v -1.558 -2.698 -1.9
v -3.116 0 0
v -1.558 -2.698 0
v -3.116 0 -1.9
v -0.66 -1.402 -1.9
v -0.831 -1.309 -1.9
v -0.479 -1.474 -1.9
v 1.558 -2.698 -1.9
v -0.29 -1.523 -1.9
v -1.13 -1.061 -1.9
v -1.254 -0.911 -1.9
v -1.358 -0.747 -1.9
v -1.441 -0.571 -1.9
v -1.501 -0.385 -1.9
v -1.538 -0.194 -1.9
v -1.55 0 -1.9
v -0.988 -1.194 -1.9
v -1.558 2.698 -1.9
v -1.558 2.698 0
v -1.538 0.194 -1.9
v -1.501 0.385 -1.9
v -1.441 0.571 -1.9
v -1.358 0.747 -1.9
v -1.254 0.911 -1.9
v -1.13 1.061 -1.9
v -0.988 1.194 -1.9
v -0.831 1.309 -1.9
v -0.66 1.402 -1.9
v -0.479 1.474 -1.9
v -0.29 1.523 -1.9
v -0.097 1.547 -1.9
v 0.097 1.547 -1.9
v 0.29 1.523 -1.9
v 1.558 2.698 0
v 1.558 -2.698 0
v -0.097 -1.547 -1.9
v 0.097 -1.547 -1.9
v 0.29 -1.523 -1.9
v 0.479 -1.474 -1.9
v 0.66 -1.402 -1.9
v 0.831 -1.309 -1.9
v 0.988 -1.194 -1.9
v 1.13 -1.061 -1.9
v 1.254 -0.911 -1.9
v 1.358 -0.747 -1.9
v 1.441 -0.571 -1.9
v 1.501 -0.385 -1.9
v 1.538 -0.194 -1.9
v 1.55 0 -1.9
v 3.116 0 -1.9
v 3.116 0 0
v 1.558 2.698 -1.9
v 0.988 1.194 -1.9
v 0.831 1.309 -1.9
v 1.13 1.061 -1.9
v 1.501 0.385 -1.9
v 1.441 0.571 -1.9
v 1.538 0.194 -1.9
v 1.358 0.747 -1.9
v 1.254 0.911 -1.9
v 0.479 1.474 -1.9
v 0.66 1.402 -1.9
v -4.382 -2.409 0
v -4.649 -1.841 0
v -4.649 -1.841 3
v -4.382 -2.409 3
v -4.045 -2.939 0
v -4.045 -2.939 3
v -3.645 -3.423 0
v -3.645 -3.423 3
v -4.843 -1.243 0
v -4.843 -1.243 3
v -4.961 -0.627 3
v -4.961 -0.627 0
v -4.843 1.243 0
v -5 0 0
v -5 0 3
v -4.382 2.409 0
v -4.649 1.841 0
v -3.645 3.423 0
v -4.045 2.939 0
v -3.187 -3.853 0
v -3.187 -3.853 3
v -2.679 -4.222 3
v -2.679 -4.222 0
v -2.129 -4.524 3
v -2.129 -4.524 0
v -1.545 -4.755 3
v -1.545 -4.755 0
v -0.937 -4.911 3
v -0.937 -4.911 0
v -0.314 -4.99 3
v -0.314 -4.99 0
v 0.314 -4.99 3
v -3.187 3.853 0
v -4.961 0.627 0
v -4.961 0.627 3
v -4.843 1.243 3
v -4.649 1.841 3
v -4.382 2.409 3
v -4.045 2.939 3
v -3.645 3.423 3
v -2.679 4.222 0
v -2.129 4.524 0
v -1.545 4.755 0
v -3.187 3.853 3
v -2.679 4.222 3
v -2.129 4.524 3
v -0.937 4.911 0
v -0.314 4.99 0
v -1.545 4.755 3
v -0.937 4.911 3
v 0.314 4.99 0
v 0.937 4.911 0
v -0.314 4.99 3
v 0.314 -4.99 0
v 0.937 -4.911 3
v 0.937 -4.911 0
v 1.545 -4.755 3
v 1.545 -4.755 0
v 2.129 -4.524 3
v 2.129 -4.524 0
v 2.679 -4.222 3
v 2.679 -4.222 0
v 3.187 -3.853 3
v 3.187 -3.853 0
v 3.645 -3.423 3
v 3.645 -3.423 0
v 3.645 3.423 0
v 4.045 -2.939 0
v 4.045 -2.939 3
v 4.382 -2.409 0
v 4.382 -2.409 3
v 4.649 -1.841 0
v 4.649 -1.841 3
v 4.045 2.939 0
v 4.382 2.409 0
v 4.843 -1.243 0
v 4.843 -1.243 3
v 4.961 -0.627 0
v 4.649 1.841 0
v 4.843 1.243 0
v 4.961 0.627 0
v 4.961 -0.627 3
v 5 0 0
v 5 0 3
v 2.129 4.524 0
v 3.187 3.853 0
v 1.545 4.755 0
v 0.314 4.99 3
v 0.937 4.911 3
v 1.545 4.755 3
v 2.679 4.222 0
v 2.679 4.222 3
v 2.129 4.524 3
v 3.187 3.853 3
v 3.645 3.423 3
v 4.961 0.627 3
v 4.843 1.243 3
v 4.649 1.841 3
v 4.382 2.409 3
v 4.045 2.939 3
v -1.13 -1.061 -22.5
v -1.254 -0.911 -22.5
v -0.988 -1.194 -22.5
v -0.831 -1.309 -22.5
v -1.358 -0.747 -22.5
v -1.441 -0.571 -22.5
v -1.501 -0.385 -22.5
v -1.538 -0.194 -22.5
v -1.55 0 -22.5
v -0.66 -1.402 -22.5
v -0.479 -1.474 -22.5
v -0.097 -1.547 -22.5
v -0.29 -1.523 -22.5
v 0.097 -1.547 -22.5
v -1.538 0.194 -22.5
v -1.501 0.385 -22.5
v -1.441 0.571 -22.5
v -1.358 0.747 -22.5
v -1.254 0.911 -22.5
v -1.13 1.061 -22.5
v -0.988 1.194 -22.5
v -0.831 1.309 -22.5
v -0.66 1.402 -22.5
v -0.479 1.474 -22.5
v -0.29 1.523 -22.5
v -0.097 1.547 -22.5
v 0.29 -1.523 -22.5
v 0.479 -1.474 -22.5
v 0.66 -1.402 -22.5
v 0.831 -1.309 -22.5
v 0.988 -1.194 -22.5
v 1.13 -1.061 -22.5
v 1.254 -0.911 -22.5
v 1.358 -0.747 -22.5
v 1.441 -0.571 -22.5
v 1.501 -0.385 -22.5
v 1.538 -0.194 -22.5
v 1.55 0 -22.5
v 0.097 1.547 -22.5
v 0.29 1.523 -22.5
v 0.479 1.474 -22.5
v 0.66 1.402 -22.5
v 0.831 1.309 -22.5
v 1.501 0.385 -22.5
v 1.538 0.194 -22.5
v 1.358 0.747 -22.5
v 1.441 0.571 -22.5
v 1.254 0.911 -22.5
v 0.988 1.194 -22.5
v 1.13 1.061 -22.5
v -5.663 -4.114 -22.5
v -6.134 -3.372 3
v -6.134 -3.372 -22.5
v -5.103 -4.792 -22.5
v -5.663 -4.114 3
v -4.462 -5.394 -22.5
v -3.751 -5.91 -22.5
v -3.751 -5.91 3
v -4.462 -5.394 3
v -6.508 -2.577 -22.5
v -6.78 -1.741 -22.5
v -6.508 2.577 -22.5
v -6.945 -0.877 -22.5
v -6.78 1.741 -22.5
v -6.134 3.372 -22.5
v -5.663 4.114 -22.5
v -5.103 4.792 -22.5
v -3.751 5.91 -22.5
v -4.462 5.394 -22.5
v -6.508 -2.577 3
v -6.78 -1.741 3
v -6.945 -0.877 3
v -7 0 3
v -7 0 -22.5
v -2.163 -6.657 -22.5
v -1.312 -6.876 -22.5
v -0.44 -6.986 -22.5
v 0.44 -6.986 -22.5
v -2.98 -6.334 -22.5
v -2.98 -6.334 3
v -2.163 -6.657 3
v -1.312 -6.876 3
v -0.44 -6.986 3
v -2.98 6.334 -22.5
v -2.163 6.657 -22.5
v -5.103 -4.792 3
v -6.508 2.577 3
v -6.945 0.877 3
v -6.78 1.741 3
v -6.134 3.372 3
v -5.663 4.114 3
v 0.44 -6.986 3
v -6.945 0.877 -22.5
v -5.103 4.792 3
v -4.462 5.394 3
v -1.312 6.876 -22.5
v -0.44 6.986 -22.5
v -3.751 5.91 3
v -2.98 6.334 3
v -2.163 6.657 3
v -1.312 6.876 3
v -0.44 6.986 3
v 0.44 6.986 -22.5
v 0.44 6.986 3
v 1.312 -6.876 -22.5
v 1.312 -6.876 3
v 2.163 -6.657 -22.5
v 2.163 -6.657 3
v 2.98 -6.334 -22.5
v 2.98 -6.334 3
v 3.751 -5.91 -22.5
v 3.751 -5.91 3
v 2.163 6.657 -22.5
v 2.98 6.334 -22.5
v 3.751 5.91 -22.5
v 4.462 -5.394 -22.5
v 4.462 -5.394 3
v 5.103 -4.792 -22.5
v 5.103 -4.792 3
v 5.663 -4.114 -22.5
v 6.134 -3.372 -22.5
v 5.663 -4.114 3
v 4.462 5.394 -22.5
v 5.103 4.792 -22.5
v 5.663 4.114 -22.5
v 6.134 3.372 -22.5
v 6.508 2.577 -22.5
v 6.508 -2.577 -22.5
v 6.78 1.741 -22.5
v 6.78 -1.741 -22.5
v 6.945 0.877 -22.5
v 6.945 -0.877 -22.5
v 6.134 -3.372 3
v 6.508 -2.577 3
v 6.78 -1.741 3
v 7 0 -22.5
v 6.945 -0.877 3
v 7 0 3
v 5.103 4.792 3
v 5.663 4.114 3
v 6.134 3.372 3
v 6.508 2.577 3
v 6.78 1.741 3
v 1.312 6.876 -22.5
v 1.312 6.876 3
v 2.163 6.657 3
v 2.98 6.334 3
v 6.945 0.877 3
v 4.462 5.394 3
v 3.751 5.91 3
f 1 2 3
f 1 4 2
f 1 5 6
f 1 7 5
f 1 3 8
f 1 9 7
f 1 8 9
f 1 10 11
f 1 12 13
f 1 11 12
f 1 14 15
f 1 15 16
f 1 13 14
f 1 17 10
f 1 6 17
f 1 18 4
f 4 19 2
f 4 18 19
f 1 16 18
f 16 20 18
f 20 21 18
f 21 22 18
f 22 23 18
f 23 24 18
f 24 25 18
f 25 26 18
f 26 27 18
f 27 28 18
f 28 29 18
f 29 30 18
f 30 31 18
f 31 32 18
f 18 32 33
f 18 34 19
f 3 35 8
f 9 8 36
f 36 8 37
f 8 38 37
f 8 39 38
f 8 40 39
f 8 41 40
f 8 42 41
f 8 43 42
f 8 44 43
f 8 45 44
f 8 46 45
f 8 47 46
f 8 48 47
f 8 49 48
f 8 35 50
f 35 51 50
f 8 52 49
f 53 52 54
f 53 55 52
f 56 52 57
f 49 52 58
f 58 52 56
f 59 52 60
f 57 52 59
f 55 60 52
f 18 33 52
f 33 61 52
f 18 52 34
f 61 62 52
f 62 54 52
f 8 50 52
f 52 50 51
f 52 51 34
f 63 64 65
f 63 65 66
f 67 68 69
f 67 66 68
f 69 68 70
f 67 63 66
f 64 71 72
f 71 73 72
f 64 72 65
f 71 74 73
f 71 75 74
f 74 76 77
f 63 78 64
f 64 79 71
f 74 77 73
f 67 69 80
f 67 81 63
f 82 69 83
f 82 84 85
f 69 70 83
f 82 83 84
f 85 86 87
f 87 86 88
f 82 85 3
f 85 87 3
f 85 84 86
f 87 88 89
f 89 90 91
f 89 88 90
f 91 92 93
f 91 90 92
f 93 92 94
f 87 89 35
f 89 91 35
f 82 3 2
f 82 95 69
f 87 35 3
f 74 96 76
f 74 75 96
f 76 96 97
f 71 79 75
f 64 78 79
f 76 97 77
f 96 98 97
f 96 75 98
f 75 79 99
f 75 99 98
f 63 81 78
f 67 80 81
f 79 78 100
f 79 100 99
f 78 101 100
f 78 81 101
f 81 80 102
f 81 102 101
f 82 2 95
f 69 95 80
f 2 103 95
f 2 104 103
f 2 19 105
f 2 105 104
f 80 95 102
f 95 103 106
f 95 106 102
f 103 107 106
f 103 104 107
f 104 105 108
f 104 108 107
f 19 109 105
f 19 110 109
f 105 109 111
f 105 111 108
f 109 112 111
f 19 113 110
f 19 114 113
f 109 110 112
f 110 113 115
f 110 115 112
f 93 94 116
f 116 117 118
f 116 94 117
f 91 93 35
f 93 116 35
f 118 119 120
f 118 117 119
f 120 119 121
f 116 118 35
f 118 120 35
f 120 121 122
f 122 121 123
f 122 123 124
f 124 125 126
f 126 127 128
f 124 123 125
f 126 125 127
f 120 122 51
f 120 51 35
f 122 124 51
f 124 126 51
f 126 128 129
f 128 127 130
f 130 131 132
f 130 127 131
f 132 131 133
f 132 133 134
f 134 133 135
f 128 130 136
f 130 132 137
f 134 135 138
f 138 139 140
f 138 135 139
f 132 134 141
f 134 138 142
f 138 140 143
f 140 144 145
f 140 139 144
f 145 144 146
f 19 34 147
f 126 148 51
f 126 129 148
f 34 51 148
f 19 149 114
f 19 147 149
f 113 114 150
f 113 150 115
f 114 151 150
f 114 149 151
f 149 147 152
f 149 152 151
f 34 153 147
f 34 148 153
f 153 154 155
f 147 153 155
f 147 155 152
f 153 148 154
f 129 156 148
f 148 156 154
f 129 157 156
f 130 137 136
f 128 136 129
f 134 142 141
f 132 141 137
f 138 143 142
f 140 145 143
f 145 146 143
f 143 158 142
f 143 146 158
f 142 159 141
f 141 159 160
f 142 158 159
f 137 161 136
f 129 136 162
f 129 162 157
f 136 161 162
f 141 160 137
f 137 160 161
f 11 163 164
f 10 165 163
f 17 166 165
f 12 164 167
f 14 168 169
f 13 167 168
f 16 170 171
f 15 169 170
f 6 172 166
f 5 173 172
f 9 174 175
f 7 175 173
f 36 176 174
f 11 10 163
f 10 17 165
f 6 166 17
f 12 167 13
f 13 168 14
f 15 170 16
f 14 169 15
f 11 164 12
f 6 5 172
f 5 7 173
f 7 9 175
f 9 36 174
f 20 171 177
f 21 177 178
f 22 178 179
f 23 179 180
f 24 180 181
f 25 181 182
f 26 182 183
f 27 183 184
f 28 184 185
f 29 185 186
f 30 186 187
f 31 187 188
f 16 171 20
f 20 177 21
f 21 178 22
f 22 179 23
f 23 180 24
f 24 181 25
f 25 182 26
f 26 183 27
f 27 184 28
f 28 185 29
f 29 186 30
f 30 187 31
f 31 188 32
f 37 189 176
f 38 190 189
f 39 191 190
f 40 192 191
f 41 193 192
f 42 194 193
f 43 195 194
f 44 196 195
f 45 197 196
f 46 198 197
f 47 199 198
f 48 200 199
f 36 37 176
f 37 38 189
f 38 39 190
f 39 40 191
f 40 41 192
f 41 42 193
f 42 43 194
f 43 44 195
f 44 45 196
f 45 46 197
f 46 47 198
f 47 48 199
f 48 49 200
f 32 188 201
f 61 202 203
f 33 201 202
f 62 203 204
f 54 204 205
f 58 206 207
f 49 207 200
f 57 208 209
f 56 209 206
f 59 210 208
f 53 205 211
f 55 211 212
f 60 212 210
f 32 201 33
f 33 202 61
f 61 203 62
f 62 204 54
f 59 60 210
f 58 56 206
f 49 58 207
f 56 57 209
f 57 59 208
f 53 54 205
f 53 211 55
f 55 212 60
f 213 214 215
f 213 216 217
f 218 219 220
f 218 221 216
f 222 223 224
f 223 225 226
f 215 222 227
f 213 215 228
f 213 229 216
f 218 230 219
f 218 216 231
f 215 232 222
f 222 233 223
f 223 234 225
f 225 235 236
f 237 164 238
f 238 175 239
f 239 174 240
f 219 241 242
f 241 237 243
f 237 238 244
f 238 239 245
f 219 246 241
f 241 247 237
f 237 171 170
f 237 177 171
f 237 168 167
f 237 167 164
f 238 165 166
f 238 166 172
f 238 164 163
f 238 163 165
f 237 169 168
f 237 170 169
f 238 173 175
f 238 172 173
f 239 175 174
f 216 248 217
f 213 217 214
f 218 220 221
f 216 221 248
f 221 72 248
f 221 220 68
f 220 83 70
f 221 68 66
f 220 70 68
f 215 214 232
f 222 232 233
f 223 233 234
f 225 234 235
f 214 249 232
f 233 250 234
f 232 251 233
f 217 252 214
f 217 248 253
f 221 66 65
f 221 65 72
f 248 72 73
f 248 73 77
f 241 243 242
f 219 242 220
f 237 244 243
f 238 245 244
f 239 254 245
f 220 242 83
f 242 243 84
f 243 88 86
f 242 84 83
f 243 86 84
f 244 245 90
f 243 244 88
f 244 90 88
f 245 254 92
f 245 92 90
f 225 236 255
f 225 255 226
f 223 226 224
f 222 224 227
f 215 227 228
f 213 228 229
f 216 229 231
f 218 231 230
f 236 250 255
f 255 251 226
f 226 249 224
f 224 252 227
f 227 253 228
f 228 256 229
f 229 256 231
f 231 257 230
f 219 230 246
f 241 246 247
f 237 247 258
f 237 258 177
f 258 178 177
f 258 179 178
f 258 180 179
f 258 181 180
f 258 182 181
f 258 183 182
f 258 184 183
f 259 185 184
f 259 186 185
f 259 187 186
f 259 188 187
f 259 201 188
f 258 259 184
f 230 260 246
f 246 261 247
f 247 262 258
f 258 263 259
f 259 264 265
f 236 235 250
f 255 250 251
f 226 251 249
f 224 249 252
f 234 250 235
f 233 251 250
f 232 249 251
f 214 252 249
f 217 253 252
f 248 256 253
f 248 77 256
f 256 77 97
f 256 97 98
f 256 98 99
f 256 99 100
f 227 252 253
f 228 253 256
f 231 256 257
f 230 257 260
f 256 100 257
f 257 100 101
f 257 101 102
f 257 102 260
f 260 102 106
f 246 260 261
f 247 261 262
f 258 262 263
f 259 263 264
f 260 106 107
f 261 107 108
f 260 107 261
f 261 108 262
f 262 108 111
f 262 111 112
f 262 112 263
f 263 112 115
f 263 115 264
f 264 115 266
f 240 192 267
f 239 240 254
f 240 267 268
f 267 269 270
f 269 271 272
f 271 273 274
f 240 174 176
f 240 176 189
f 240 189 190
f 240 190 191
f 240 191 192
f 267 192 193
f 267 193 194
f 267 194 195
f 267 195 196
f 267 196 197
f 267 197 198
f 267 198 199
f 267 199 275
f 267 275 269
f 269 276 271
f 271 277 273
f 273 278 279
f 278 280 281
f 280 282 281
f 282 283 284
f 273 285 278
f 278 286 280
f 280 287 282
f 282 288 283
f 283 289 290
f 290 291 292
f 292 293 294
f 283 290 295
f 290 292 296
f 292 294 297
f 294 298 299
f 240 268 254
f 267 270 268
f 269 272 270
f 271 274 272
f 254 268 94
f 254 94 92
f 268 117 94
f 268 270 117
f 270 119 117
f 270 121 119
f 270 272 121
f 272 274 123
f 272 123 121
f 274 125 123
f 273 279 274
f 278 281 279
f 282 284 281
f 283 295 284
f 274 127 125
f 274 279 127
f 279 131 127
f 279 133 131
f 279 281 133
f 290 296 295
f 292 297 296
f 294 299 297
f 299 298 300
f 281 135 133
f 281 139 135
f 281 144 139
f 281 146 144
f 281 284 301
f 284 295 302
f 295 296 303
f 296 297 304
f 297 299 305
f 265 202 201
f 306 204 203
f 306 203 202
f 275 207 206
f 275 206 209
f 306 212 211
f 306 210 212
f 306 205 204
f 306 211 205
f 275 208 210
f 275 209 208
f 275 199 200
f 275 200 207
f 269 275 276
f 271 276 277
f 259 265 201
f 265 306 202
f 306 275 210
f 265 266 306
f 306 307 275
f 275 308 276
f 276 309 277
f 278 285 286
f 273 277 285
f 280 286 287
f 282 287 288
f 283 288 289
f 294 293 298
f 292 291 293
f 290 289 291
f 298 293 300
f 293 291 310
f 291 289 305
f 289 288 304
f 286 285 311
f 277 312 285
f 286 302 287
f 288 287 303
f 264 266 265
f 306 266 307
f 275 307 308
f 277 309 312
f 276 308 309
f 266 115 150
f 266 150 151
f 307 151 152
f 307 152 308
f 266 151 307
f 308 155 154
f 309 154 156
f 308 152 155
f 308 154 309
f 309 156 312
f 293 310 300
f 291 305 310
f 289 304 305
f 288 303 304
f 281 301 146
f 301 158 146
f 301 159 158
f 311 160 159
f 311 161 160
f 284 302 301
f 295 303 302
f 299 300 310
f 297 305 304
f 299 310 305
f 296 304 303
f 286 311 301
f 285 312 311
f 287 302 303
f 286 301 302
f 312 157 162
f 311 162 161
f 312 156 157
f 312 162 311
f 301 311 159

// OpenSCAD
$fn = 50;


difference() {
	union() {
		translate(v = [0, 0, -22.5000000000]) {
			cylinder(h = 25.5000000000, r = 7.0000000000);
		}
	}
	union() {
		translate(v = [0, 0, 0]) {
			rotate(a = [0, 0, 0]) {
				difference() {
					union() {
						translate(v = [0, 0, -1.9000000000]) {
							linear_extrude(height = 1.9000000000) {
								polygon(points = [[3.1158000000, 0.0000000000], [1.5579000000, 2.6983619531], [-1.5579000000, 2.6983619531], [-3.1158000000, 0.0000000000], [-1.5579000000, -2.6983619531], [1.5579000000, -2.6983619531]]);
							}
						}
					}
					union();
				}
			}
		}
		#cylinder(h = 3, r = 5.0000000000);
		#translate(v = [0, 0, -100.0000000000]) {
			cylinder(h = 200, r = 1.5500000000);
		}
	}
}
